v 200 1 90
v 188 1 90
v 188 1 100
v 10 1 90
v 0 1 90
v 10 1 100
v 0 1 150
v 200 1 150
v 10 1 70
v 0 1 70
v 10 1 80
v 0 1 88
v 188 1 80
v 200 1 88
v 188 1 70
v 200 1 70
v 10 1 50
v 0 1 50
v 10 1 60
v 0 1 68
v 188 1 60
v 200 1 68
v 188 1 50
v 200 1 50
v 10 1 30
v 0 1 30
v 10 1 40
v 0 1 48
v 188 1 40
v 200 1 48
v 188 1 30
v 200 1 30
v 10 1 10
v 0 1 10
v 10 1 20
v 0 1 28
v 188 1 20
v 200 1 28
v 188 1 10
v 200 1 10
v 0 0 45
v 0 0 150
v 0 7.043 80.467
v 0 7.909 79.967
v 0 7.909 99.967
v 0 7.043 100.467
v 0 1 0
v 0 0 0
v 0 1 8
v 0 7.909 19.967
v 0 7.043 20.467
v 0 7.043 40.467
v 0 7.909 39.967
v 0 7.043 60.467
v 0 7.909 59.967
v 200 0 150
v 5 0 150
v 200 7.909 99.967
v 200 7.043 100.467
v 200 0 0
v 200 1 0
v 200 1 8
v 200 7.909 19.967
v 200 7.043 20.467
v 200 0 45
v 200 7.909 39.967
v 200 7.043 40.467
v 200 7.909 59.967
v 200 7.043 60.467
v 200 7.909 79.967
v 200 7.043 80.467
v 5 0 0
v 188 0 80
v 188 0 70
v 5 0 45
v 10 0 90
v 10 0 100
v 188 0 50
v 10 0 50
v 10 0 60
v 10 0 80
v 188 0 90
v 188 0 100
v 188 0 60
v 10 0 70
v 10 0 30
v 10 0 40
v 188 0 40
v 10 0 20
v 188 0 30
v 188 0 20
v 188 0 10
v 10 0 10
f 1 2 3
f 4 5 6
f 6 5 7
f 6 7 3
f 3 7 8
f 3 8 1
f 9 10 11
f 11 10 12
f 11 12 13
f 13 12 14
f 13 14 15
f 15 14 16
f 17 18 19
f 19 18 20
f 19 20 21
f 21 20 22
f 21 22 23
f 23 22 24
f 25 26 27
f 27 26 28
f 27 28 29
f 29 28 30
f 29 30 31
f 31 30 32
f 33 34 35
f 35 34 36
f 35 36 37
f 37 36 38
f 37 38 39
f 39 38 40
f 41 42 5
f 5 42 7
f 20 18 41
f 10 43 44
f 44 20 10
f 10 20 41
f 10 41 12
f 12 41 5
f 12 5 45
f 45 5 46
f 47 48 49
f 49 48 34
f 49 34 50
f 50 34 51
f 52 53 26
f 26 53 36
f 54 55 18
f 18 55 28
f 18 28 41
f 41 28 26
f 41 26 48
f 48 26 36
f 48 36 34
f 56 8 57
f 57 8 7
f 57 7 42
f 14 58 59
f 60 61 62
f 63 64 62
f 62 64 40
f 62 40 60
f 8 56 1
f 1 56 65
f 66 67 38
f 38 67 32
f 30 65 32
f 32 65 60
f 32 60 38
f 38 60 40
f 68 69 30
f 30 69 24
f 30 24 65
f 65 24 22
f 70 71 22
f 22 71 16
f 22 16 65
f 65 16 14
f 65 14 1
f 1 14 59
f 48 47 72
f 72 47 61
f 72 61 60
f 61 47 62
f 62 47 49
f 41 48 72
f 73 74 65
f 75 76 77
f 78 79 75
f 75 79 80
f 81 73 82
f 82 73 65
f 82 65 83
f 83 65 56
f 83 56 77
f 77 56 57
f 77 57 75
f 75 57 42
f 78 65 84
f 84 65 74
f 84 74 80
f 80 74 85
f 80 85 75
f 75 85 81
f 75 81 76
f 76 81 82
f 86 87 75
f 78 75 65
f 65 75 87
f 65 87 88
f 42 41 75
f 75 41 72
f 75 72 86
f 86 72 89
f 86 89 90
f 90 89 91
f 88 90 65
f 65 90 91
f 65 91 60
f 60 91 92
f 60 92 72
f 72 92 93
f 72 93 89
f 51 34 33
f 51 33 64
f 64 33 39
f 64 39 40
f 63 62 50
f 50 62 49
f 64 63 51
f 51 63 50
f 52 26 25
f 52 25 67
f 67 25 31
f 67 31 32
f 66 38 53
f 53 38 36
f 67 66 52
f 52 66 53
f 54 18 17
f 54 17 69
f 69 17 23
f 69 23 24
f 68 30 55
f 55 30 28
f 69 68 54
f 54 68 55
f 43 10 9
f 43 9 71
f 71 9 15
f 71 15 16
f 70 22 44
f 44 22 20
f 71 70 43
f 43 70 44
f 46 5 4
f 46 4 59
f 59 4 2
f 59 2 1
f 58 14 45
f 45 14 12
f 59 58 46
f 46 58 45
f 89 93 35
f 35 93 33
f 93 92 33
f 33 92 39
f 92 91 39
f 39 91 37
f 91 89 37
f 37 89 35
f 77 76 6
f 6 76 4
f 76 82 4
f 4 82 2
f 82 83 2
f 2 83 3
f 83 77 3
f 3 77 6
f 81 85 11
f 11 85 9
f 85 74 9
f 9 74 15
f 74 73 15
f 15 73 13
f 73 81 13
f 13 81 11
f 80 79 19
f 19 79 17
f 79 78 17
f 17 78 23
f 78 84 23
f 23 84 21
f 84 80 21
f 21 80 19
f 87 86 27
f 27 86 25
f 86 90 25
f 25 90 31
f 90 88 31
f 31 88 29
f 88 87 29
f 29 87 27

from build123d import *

# Parameters (mm, degrees)
SKETCH_1_W             = 200
SKETCH_1_H             = 150
EXTRUDE_1_DEPTH        = 1
EXTRUDE_2_DEPTH        = 200
PATTERN_LINEAR_1_COUNT = 5
PATTERN_LINEAR_1_PITCH = 20
SKETCH_5_W             = 178
SKETCH_5_H             = 10
CUT_EXTRUDE_1_DEPTH    = 1
PATTERN_LINEAR_2_COUNT = 5
PATTERN_LINEAR_2_PITCH = 20


with BuildPart() as part:
    # 草图1 → 凸台-拉伸1 (new body)
    with BuildSketch(Plane(origin=(0, 0, 0), x_dir=(1, 0, 0), z_dir=(0, 1, 0))):
        with Locations((100, -75)):
            Rectangle(SKETCH_1_W, SKETCH_1_H)
    extrude(amount=EXTRUDE_1_DEPTH)

    # 草图4 → 凸台-拉伸2 (add)
    with BuildSketch(Plane.ZY):
        Polygon((8, 1), (10, 1), (20.467293485, 7.043294711), (19.967293485, 7.909320115), align=None)
    extrude_2 = extrude(amount=-EXTRUDE_2_DEPTH)

    # 阵列(线性)1: 凸台-拉伸2 ×5
    with Locations(*[(0, 0, i * PATTERN_LINEAR_1_PITCH) for i in range(1, PATTERN_LINEAR_1_COUNT)]):
        add(extrude_2)

    # 草图5 → 切除-拉伸1 (cut)
    with BuildSketch(Plane(origin=(0, 1, 0), x_dir=(1, 0, 0), z_dir=(0, 1, 0))):
        with Locations((99, -15)):
            Rectangle(SKETCH_5_W, SKETCH_5_H)
    cut_extrude_1 = extrude(amount=-CUT_EXTRUDE_1_DEPTH, mode=Mode.SUBTRACT)

    # 阵列(线性)2: 切除-拉伸1 ×5
    with Locations(*[(0, 0, i * PATTERN_LINEAR_2_PITCH) for i in range(1, PATTERN_LINEAR_2_COUNT)]):
        add(cut_extrude_1, mode=Mode.SUBTRACT)


solid = part.part
